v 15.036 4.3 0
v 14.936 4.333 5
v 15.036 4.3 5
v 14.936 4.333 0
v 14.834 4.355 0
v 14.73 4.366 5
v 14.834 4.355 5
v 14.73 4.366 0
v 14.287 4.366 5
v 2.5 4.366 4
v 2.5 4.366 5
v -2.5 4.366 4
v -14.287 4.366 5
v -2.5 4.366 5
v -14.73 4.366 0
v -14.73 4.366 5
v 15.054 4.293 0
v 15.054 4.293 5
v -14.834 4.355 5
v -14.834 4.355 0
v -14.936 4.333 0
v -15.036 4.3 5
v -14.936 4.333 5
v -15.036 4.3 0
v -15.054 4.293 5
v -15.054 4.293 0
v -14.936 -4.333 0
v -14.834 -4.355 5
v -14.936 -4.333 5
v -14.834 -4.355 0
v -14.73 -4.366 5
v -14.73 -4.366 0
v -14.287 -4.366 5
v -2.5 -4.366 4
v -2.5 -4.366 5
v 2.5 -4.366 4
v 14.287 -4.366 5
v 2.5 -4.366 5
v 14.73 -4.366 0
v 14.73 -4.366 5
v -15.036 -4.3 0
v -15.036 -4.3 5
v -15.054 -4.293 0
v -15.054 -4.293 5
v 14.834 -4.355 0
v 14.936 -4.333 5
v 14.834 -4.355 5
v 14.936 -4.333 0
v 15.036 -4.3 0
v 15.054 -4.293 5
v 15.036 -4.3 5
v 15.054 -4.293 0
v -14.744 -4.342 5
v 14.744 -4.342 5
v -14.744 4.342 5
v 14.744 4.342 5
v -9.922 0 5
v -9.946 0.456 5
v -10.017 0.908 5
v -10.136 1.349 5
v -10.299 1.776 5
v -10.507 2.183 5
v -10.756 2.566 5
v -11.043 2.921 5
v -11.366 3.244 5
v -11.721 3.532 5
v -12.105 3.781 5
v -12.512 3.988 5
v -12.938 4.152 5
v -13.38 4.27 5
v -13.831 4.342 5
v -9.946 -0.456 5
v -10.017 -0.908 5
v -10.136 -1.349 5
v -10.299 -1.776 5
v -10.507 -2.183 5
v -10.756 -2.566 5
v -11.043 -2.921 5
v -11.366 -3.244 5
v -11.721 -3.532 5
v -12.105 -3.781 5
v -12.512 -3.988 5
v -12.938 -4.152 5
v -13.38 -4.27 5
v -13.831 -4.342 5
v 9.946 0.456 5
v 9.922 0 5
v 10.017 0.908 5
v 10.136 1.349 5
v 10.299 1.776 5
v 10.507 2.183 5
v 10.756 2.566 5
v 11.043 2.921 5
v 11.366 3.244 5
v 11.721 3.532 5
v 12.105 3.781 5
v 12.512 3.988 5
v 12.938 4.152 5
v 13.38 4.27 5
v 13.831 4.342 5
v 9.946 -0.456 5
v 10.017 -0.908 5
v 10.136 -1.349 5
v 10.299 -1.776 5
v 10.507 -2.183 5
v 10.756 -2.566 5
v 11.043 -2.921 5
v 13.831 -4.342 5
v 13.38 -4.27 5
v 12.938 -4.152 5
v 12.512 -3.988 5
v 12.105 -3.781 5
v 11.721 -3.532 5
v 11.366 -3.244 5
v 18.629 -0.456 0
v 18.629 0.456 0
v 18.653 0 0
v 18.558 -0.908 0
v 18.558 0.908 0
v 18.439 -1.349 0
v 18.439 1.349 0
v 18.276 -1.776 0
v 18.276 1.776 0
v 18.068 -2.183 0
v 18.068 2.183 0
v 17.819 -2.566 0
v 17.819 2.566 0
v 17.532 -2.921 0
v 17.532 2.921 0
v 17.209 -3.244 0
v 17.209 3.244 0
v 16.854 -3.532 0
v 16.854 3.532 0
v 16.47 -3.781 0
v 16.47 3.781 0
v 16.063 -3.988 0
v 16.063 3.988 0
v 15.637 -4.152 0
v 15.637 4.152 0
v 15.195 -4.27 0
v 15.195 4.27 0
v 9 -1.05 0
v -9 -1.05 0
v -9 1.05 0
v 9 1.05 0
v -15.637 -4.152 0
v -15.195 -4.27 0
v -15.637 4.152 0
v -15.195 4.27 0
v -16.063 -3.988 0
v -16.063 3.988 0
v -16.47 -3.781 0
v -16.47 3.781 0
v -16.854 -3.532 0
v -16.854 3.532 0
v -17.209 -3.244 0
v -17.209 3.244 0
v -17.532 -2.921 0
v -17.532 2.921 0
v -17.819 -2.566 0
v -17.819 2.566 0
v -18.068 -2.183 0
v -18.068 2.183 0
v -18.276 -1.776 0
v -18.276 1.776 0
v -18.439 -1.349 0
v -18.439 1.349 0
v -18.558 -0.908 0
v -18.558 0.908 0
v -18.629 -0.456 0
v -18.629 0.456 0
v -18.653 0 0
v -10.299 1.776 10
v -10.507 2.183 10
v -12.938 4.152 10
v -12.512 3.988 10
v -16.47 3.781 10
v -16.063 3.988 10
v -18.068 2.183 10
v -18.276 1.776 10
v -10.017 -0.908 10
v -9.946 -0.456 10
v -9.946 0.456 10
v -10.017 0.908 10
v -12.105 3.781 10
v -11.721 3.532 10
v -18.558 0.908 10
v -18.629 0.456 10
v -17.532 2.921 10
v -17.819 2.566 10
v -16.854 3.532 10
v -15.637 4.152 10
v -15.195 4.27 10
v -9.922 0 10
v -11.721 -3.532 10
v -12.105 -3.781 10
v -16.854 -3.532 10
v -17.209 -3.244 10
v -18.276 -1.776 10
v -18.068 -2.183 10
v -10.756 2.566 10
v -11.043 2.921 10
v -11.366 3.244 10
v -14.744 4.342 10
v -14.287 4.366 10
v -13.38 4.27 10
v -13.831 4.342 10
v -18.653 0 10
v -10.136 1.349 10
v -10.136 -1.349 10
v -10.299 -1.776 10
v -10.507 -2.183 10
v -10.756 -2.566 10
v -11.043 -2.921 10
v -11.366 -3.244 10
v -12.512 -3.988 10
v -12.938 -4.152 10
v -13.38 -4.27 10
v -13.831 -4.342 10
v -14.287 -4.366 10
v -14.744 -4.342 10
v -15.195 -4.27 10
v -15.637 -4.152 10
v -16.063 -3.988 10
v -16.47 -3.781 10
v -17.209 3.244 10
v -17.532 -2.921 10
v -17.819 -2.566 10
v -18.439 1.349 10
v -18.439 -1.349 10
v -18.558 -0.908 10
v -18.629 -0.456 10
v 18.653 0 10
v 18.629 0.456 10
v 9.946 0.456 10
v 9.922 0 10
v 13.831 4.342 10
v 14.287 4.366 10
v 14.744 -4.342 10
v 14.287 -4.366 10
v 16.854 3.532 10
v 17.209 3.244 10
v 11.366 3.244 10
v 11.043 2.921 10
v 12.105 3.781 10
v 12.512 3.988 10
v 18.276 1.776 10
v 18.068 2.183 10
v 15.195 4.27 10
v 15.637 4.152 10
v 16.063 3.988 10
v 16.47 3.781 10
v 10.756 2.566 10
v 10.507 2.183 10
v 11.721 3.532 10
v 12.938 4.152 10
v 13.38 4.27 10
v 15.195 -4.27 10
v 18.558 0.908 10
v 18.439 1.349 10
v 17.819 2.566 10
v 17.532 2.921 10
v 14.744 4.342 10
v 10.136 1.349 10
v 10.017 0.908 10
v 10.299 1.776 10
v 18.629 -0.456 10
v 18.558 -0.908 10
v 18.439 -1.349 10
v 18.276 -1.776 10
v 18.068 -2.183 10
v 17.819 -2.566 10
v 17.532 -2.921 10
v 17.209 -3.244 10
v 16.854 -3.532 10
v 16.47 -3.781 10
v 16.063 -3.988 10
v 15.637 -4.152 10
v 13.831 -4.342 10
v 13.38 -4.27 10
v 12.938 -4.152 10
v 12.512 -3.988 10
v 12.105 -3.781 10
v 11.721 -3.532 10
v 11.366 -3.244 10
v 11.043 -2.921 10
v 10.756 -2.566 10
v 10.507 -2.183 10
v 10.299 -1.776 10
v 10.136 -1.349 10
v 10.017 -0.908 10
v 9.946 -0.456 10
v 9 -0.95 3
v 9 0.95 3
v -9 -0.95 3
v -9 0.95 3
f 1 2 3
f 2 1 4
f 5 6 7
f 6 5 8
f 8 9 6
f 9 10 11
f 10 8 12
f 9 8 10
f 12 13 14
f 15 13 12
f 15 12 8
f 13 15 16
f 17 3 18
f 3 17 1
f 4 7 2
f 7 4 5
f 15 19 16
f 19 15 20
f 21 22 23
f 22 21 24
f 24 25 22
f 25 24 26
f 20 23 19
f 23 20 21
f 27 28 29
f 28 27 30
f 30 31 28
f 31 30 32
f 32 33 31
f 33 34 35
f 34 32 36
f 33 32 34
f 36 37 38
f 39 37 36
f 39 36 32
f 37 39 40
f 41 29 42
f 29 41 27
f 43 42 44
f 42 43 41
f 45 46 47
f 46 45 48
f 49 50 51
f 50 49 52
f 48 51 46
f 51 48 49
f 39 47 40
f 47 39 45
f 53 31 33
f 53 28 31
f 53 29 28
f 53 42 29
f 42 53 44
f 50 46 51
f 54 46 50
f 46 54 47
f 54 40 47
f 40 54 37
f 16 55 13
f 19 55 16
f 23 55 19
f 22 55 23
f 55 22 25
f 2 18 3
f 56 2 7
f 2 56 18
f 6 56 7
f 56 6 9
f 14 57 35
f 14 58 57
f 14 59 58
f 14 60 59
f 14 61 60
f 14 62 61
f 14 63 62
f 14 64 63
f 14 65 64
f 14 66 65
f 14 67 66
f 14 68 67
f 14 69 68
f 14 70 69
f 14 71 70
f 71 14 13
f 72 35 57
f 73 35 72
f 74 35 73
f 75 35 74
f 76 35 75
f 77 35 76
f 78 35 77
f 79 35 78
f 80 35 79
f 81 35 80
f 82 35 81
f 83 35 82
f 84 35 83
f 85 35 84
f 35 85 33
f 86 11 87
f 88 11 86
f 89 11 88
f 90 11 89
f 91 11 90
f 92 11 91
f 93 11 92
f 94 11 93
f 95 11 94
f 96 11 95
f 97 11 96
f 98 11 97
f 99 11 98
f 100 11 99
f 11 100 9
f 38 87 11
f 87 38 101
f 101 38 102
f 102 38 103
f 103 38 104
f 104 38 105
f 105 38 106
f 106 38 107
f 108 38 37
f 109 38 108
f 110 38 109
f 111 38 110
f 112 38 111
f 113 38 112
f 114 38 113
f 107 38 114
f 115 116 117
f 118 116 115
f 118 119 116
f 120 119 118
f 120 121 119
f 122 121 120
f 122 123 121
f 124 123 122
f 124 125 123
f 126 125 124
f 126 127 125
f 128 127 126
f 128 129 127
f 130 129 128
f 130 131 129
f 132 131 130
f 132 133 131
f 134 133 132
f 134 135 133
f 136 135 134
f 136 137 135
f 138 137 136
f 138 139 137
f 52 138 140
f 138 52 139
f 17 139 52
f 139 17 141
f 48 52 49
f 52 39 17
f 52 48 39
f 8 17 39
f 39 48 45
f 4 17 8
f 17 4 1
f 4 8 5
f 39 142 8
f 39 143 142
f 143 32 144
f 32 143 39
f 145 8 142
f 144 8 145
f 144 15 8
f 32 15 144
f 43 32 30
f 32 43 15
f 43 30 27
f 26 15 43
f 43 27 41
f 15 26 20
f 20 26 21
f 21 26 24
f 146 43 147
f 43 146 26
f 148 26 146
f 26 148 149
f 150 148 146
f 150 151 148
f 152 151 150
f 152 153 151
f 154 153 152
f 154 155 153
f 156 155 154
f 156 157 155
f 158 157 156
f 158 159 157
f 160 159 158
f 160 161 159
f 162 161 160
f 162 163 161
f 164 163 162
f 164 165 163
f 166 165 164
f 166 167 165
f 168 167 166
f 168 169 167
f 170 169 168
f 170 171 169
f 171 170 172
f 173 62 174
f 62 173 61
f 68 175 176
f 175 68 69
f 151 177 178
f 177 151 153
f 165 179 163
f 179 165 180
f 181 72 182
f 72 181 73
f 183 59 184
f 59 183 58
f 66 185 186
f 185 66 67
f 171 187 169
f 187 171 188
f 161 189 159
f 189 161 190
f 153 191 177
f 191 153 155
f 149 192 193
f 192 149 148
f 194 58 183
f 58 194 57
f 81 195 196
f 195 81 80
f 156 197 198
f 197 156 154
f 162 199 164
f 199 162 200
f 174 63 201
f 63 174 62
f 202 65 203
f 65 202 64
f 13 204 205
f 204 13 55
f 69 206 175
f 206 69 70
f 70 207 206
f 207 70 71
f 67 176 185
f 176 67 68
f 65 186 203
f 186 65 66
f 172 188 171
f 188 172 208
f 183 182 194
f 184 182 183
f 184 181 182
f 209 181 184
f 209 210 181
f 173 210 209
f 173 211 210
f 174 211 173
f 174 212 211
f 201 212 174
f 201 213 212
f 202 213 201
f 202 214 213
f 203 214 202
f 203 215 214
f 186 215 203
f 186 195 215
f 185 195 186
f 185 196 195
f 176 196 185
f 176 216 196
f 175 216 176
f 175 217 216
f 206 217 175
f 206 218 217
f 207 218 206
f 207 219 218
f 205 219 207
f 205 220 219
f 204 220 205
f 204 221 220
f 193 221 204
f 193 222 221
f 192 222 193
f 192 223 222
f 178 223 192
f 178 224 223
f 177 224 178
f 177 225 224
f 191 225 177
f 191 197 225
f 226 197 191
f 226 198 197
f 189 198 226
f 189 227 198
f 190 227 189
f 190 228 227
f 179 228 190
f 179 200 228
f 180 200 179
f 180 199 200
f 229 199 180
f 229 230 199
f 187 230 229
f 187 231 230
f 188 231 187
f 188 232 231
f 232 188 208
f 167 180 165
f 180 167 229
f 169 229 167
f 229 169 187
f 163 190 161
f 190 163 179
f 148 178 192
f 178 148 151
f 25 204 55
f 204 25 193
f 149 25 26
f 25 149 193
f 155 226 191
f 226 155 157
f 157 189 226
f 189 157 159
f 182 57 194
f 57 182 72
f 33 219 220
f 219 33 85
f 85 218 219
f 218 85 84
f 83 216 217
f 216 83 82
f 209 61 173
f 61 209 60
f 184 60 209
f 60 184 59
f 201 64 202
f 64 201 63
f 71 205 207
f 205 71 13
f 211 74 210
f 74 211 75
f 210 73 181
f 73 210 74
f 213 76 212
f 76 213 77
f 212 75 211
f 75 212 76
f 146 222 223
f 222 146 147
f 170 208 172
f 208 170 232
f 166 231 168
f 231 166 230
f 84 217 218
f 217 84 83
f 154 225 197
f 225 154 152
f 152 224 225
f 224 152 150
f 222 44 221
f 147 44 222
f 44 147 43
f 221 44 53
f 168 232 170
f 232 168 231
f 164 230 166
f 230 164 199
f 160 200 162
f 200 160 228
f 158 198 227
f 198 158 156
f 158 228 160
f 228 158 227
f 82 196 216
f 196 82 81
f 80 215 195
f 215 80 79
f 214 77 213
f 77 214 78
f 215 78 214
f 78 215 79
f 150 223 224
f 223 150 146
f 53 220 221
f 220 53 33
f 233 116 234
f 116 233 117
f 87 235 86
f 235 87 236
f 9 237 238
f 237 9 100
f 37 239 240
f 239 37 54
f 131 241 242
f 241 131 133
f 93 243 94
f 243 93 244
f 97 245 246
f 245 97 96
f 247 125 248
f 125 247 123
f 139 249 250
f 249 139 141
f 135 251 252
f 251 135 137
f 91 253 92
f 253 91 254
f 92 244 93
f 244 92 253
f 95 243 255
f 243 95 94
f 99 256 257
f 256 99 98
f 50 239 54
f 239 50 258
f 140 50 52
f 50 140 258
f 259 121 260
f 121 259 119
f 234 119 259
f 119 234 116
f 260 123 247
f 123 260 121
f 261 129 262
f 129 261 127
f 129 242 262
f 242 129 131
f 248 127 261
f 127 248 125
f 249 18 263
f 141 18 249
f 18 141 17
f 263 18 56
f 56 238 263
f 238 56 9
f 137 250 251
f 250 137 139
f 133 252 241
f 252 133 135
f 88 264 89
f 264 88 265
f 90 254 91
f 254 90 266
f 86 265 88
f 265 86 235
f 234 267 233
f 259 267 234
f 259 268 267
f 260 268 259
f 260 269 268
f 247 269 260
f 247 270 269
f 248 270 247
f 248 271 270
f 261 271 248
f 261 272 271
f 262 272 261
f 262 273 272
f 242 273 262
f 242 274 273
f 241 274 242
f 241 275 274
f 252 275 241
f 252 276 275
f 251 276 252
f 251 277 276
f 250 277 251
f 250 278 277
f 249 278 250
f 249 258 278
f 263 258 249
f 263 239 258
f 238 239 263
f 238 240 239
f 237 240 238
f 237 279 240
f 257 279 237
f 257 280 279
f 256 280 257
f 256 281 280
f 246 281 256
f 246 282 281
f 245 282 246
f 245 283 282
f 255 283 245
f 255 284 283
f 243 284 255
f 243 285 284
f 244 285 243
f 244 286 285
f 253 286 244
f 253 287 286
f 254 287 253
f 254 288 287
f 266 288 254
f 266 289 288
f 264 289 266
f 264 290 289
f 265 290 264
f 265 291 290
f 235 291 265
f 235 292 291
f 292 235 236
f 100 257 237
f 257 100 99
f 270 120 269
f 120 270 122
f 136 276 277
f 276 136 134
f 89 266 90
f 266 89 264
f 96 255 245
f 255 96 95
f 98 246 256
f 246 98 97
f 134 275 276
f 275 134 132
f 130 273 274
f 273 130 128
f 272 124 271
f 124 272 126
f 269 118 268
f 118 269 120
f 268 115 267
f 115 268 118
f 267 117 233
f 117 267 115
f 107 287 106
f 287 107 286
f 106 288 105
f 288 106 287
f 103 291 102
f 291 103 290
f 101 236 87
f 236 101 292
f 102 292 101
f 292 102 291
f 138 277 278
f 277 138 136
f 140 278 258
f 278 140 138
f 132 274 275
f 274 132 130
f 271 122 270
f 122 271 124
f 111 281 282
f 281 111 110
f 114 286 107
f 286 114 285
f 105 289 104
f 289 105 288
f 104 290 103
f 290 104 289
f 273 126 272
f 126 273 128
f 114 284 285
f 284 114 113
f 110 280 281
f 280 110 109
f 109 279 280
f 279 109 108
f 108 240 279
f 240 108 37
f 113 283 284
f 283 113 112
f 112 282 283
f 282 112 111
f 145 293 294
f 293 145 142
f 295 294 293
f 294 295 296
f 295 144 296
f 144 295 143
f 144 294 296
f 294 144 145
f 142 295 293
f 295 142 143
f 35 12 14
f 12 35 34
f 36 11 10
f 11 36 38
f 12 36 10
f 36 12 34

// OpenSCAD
include <BOSL/constants.scad>
use <BOSL/shapes.scad>
use <BOSL/transforms.scad>
use <BOSL/masks.scad>

$fn=60; //circle smoothness

// 1/2/3 imperial block
holespacing = 14.2875; //14.2875 = 0.5625" = 9/16"
holediam = 8.73125; //8.73125 = 0.34375" = 11/32"

baseThick = 5;
baseWidth = (holespacing*2)+(holediam/PI);

slotWidth = 18;

difference() {
  union()  {
    base(); 
    left(holespacing) post();
    right(holespacing) post();
  }
  slot();
  pry();
}
module base() { color("purple") cuboid([baseWidth, holediam, baseThick], align=V_UP, fillet=1, edges=EDGES_Z_ALL); }
module post() { color("green") cyl(h=5+baseThick, d=holediam, align=V_UP); }
module slot() { color("gray") prismoid(size1=[slotWidth,2.1], size2=[slotWidth, 1.9], h=3, align=V_UP); } //[x,2,3]
module pry() { color("pink") up(baseThick-1) cuboid([5, 10, 1], align=V_UP); }
